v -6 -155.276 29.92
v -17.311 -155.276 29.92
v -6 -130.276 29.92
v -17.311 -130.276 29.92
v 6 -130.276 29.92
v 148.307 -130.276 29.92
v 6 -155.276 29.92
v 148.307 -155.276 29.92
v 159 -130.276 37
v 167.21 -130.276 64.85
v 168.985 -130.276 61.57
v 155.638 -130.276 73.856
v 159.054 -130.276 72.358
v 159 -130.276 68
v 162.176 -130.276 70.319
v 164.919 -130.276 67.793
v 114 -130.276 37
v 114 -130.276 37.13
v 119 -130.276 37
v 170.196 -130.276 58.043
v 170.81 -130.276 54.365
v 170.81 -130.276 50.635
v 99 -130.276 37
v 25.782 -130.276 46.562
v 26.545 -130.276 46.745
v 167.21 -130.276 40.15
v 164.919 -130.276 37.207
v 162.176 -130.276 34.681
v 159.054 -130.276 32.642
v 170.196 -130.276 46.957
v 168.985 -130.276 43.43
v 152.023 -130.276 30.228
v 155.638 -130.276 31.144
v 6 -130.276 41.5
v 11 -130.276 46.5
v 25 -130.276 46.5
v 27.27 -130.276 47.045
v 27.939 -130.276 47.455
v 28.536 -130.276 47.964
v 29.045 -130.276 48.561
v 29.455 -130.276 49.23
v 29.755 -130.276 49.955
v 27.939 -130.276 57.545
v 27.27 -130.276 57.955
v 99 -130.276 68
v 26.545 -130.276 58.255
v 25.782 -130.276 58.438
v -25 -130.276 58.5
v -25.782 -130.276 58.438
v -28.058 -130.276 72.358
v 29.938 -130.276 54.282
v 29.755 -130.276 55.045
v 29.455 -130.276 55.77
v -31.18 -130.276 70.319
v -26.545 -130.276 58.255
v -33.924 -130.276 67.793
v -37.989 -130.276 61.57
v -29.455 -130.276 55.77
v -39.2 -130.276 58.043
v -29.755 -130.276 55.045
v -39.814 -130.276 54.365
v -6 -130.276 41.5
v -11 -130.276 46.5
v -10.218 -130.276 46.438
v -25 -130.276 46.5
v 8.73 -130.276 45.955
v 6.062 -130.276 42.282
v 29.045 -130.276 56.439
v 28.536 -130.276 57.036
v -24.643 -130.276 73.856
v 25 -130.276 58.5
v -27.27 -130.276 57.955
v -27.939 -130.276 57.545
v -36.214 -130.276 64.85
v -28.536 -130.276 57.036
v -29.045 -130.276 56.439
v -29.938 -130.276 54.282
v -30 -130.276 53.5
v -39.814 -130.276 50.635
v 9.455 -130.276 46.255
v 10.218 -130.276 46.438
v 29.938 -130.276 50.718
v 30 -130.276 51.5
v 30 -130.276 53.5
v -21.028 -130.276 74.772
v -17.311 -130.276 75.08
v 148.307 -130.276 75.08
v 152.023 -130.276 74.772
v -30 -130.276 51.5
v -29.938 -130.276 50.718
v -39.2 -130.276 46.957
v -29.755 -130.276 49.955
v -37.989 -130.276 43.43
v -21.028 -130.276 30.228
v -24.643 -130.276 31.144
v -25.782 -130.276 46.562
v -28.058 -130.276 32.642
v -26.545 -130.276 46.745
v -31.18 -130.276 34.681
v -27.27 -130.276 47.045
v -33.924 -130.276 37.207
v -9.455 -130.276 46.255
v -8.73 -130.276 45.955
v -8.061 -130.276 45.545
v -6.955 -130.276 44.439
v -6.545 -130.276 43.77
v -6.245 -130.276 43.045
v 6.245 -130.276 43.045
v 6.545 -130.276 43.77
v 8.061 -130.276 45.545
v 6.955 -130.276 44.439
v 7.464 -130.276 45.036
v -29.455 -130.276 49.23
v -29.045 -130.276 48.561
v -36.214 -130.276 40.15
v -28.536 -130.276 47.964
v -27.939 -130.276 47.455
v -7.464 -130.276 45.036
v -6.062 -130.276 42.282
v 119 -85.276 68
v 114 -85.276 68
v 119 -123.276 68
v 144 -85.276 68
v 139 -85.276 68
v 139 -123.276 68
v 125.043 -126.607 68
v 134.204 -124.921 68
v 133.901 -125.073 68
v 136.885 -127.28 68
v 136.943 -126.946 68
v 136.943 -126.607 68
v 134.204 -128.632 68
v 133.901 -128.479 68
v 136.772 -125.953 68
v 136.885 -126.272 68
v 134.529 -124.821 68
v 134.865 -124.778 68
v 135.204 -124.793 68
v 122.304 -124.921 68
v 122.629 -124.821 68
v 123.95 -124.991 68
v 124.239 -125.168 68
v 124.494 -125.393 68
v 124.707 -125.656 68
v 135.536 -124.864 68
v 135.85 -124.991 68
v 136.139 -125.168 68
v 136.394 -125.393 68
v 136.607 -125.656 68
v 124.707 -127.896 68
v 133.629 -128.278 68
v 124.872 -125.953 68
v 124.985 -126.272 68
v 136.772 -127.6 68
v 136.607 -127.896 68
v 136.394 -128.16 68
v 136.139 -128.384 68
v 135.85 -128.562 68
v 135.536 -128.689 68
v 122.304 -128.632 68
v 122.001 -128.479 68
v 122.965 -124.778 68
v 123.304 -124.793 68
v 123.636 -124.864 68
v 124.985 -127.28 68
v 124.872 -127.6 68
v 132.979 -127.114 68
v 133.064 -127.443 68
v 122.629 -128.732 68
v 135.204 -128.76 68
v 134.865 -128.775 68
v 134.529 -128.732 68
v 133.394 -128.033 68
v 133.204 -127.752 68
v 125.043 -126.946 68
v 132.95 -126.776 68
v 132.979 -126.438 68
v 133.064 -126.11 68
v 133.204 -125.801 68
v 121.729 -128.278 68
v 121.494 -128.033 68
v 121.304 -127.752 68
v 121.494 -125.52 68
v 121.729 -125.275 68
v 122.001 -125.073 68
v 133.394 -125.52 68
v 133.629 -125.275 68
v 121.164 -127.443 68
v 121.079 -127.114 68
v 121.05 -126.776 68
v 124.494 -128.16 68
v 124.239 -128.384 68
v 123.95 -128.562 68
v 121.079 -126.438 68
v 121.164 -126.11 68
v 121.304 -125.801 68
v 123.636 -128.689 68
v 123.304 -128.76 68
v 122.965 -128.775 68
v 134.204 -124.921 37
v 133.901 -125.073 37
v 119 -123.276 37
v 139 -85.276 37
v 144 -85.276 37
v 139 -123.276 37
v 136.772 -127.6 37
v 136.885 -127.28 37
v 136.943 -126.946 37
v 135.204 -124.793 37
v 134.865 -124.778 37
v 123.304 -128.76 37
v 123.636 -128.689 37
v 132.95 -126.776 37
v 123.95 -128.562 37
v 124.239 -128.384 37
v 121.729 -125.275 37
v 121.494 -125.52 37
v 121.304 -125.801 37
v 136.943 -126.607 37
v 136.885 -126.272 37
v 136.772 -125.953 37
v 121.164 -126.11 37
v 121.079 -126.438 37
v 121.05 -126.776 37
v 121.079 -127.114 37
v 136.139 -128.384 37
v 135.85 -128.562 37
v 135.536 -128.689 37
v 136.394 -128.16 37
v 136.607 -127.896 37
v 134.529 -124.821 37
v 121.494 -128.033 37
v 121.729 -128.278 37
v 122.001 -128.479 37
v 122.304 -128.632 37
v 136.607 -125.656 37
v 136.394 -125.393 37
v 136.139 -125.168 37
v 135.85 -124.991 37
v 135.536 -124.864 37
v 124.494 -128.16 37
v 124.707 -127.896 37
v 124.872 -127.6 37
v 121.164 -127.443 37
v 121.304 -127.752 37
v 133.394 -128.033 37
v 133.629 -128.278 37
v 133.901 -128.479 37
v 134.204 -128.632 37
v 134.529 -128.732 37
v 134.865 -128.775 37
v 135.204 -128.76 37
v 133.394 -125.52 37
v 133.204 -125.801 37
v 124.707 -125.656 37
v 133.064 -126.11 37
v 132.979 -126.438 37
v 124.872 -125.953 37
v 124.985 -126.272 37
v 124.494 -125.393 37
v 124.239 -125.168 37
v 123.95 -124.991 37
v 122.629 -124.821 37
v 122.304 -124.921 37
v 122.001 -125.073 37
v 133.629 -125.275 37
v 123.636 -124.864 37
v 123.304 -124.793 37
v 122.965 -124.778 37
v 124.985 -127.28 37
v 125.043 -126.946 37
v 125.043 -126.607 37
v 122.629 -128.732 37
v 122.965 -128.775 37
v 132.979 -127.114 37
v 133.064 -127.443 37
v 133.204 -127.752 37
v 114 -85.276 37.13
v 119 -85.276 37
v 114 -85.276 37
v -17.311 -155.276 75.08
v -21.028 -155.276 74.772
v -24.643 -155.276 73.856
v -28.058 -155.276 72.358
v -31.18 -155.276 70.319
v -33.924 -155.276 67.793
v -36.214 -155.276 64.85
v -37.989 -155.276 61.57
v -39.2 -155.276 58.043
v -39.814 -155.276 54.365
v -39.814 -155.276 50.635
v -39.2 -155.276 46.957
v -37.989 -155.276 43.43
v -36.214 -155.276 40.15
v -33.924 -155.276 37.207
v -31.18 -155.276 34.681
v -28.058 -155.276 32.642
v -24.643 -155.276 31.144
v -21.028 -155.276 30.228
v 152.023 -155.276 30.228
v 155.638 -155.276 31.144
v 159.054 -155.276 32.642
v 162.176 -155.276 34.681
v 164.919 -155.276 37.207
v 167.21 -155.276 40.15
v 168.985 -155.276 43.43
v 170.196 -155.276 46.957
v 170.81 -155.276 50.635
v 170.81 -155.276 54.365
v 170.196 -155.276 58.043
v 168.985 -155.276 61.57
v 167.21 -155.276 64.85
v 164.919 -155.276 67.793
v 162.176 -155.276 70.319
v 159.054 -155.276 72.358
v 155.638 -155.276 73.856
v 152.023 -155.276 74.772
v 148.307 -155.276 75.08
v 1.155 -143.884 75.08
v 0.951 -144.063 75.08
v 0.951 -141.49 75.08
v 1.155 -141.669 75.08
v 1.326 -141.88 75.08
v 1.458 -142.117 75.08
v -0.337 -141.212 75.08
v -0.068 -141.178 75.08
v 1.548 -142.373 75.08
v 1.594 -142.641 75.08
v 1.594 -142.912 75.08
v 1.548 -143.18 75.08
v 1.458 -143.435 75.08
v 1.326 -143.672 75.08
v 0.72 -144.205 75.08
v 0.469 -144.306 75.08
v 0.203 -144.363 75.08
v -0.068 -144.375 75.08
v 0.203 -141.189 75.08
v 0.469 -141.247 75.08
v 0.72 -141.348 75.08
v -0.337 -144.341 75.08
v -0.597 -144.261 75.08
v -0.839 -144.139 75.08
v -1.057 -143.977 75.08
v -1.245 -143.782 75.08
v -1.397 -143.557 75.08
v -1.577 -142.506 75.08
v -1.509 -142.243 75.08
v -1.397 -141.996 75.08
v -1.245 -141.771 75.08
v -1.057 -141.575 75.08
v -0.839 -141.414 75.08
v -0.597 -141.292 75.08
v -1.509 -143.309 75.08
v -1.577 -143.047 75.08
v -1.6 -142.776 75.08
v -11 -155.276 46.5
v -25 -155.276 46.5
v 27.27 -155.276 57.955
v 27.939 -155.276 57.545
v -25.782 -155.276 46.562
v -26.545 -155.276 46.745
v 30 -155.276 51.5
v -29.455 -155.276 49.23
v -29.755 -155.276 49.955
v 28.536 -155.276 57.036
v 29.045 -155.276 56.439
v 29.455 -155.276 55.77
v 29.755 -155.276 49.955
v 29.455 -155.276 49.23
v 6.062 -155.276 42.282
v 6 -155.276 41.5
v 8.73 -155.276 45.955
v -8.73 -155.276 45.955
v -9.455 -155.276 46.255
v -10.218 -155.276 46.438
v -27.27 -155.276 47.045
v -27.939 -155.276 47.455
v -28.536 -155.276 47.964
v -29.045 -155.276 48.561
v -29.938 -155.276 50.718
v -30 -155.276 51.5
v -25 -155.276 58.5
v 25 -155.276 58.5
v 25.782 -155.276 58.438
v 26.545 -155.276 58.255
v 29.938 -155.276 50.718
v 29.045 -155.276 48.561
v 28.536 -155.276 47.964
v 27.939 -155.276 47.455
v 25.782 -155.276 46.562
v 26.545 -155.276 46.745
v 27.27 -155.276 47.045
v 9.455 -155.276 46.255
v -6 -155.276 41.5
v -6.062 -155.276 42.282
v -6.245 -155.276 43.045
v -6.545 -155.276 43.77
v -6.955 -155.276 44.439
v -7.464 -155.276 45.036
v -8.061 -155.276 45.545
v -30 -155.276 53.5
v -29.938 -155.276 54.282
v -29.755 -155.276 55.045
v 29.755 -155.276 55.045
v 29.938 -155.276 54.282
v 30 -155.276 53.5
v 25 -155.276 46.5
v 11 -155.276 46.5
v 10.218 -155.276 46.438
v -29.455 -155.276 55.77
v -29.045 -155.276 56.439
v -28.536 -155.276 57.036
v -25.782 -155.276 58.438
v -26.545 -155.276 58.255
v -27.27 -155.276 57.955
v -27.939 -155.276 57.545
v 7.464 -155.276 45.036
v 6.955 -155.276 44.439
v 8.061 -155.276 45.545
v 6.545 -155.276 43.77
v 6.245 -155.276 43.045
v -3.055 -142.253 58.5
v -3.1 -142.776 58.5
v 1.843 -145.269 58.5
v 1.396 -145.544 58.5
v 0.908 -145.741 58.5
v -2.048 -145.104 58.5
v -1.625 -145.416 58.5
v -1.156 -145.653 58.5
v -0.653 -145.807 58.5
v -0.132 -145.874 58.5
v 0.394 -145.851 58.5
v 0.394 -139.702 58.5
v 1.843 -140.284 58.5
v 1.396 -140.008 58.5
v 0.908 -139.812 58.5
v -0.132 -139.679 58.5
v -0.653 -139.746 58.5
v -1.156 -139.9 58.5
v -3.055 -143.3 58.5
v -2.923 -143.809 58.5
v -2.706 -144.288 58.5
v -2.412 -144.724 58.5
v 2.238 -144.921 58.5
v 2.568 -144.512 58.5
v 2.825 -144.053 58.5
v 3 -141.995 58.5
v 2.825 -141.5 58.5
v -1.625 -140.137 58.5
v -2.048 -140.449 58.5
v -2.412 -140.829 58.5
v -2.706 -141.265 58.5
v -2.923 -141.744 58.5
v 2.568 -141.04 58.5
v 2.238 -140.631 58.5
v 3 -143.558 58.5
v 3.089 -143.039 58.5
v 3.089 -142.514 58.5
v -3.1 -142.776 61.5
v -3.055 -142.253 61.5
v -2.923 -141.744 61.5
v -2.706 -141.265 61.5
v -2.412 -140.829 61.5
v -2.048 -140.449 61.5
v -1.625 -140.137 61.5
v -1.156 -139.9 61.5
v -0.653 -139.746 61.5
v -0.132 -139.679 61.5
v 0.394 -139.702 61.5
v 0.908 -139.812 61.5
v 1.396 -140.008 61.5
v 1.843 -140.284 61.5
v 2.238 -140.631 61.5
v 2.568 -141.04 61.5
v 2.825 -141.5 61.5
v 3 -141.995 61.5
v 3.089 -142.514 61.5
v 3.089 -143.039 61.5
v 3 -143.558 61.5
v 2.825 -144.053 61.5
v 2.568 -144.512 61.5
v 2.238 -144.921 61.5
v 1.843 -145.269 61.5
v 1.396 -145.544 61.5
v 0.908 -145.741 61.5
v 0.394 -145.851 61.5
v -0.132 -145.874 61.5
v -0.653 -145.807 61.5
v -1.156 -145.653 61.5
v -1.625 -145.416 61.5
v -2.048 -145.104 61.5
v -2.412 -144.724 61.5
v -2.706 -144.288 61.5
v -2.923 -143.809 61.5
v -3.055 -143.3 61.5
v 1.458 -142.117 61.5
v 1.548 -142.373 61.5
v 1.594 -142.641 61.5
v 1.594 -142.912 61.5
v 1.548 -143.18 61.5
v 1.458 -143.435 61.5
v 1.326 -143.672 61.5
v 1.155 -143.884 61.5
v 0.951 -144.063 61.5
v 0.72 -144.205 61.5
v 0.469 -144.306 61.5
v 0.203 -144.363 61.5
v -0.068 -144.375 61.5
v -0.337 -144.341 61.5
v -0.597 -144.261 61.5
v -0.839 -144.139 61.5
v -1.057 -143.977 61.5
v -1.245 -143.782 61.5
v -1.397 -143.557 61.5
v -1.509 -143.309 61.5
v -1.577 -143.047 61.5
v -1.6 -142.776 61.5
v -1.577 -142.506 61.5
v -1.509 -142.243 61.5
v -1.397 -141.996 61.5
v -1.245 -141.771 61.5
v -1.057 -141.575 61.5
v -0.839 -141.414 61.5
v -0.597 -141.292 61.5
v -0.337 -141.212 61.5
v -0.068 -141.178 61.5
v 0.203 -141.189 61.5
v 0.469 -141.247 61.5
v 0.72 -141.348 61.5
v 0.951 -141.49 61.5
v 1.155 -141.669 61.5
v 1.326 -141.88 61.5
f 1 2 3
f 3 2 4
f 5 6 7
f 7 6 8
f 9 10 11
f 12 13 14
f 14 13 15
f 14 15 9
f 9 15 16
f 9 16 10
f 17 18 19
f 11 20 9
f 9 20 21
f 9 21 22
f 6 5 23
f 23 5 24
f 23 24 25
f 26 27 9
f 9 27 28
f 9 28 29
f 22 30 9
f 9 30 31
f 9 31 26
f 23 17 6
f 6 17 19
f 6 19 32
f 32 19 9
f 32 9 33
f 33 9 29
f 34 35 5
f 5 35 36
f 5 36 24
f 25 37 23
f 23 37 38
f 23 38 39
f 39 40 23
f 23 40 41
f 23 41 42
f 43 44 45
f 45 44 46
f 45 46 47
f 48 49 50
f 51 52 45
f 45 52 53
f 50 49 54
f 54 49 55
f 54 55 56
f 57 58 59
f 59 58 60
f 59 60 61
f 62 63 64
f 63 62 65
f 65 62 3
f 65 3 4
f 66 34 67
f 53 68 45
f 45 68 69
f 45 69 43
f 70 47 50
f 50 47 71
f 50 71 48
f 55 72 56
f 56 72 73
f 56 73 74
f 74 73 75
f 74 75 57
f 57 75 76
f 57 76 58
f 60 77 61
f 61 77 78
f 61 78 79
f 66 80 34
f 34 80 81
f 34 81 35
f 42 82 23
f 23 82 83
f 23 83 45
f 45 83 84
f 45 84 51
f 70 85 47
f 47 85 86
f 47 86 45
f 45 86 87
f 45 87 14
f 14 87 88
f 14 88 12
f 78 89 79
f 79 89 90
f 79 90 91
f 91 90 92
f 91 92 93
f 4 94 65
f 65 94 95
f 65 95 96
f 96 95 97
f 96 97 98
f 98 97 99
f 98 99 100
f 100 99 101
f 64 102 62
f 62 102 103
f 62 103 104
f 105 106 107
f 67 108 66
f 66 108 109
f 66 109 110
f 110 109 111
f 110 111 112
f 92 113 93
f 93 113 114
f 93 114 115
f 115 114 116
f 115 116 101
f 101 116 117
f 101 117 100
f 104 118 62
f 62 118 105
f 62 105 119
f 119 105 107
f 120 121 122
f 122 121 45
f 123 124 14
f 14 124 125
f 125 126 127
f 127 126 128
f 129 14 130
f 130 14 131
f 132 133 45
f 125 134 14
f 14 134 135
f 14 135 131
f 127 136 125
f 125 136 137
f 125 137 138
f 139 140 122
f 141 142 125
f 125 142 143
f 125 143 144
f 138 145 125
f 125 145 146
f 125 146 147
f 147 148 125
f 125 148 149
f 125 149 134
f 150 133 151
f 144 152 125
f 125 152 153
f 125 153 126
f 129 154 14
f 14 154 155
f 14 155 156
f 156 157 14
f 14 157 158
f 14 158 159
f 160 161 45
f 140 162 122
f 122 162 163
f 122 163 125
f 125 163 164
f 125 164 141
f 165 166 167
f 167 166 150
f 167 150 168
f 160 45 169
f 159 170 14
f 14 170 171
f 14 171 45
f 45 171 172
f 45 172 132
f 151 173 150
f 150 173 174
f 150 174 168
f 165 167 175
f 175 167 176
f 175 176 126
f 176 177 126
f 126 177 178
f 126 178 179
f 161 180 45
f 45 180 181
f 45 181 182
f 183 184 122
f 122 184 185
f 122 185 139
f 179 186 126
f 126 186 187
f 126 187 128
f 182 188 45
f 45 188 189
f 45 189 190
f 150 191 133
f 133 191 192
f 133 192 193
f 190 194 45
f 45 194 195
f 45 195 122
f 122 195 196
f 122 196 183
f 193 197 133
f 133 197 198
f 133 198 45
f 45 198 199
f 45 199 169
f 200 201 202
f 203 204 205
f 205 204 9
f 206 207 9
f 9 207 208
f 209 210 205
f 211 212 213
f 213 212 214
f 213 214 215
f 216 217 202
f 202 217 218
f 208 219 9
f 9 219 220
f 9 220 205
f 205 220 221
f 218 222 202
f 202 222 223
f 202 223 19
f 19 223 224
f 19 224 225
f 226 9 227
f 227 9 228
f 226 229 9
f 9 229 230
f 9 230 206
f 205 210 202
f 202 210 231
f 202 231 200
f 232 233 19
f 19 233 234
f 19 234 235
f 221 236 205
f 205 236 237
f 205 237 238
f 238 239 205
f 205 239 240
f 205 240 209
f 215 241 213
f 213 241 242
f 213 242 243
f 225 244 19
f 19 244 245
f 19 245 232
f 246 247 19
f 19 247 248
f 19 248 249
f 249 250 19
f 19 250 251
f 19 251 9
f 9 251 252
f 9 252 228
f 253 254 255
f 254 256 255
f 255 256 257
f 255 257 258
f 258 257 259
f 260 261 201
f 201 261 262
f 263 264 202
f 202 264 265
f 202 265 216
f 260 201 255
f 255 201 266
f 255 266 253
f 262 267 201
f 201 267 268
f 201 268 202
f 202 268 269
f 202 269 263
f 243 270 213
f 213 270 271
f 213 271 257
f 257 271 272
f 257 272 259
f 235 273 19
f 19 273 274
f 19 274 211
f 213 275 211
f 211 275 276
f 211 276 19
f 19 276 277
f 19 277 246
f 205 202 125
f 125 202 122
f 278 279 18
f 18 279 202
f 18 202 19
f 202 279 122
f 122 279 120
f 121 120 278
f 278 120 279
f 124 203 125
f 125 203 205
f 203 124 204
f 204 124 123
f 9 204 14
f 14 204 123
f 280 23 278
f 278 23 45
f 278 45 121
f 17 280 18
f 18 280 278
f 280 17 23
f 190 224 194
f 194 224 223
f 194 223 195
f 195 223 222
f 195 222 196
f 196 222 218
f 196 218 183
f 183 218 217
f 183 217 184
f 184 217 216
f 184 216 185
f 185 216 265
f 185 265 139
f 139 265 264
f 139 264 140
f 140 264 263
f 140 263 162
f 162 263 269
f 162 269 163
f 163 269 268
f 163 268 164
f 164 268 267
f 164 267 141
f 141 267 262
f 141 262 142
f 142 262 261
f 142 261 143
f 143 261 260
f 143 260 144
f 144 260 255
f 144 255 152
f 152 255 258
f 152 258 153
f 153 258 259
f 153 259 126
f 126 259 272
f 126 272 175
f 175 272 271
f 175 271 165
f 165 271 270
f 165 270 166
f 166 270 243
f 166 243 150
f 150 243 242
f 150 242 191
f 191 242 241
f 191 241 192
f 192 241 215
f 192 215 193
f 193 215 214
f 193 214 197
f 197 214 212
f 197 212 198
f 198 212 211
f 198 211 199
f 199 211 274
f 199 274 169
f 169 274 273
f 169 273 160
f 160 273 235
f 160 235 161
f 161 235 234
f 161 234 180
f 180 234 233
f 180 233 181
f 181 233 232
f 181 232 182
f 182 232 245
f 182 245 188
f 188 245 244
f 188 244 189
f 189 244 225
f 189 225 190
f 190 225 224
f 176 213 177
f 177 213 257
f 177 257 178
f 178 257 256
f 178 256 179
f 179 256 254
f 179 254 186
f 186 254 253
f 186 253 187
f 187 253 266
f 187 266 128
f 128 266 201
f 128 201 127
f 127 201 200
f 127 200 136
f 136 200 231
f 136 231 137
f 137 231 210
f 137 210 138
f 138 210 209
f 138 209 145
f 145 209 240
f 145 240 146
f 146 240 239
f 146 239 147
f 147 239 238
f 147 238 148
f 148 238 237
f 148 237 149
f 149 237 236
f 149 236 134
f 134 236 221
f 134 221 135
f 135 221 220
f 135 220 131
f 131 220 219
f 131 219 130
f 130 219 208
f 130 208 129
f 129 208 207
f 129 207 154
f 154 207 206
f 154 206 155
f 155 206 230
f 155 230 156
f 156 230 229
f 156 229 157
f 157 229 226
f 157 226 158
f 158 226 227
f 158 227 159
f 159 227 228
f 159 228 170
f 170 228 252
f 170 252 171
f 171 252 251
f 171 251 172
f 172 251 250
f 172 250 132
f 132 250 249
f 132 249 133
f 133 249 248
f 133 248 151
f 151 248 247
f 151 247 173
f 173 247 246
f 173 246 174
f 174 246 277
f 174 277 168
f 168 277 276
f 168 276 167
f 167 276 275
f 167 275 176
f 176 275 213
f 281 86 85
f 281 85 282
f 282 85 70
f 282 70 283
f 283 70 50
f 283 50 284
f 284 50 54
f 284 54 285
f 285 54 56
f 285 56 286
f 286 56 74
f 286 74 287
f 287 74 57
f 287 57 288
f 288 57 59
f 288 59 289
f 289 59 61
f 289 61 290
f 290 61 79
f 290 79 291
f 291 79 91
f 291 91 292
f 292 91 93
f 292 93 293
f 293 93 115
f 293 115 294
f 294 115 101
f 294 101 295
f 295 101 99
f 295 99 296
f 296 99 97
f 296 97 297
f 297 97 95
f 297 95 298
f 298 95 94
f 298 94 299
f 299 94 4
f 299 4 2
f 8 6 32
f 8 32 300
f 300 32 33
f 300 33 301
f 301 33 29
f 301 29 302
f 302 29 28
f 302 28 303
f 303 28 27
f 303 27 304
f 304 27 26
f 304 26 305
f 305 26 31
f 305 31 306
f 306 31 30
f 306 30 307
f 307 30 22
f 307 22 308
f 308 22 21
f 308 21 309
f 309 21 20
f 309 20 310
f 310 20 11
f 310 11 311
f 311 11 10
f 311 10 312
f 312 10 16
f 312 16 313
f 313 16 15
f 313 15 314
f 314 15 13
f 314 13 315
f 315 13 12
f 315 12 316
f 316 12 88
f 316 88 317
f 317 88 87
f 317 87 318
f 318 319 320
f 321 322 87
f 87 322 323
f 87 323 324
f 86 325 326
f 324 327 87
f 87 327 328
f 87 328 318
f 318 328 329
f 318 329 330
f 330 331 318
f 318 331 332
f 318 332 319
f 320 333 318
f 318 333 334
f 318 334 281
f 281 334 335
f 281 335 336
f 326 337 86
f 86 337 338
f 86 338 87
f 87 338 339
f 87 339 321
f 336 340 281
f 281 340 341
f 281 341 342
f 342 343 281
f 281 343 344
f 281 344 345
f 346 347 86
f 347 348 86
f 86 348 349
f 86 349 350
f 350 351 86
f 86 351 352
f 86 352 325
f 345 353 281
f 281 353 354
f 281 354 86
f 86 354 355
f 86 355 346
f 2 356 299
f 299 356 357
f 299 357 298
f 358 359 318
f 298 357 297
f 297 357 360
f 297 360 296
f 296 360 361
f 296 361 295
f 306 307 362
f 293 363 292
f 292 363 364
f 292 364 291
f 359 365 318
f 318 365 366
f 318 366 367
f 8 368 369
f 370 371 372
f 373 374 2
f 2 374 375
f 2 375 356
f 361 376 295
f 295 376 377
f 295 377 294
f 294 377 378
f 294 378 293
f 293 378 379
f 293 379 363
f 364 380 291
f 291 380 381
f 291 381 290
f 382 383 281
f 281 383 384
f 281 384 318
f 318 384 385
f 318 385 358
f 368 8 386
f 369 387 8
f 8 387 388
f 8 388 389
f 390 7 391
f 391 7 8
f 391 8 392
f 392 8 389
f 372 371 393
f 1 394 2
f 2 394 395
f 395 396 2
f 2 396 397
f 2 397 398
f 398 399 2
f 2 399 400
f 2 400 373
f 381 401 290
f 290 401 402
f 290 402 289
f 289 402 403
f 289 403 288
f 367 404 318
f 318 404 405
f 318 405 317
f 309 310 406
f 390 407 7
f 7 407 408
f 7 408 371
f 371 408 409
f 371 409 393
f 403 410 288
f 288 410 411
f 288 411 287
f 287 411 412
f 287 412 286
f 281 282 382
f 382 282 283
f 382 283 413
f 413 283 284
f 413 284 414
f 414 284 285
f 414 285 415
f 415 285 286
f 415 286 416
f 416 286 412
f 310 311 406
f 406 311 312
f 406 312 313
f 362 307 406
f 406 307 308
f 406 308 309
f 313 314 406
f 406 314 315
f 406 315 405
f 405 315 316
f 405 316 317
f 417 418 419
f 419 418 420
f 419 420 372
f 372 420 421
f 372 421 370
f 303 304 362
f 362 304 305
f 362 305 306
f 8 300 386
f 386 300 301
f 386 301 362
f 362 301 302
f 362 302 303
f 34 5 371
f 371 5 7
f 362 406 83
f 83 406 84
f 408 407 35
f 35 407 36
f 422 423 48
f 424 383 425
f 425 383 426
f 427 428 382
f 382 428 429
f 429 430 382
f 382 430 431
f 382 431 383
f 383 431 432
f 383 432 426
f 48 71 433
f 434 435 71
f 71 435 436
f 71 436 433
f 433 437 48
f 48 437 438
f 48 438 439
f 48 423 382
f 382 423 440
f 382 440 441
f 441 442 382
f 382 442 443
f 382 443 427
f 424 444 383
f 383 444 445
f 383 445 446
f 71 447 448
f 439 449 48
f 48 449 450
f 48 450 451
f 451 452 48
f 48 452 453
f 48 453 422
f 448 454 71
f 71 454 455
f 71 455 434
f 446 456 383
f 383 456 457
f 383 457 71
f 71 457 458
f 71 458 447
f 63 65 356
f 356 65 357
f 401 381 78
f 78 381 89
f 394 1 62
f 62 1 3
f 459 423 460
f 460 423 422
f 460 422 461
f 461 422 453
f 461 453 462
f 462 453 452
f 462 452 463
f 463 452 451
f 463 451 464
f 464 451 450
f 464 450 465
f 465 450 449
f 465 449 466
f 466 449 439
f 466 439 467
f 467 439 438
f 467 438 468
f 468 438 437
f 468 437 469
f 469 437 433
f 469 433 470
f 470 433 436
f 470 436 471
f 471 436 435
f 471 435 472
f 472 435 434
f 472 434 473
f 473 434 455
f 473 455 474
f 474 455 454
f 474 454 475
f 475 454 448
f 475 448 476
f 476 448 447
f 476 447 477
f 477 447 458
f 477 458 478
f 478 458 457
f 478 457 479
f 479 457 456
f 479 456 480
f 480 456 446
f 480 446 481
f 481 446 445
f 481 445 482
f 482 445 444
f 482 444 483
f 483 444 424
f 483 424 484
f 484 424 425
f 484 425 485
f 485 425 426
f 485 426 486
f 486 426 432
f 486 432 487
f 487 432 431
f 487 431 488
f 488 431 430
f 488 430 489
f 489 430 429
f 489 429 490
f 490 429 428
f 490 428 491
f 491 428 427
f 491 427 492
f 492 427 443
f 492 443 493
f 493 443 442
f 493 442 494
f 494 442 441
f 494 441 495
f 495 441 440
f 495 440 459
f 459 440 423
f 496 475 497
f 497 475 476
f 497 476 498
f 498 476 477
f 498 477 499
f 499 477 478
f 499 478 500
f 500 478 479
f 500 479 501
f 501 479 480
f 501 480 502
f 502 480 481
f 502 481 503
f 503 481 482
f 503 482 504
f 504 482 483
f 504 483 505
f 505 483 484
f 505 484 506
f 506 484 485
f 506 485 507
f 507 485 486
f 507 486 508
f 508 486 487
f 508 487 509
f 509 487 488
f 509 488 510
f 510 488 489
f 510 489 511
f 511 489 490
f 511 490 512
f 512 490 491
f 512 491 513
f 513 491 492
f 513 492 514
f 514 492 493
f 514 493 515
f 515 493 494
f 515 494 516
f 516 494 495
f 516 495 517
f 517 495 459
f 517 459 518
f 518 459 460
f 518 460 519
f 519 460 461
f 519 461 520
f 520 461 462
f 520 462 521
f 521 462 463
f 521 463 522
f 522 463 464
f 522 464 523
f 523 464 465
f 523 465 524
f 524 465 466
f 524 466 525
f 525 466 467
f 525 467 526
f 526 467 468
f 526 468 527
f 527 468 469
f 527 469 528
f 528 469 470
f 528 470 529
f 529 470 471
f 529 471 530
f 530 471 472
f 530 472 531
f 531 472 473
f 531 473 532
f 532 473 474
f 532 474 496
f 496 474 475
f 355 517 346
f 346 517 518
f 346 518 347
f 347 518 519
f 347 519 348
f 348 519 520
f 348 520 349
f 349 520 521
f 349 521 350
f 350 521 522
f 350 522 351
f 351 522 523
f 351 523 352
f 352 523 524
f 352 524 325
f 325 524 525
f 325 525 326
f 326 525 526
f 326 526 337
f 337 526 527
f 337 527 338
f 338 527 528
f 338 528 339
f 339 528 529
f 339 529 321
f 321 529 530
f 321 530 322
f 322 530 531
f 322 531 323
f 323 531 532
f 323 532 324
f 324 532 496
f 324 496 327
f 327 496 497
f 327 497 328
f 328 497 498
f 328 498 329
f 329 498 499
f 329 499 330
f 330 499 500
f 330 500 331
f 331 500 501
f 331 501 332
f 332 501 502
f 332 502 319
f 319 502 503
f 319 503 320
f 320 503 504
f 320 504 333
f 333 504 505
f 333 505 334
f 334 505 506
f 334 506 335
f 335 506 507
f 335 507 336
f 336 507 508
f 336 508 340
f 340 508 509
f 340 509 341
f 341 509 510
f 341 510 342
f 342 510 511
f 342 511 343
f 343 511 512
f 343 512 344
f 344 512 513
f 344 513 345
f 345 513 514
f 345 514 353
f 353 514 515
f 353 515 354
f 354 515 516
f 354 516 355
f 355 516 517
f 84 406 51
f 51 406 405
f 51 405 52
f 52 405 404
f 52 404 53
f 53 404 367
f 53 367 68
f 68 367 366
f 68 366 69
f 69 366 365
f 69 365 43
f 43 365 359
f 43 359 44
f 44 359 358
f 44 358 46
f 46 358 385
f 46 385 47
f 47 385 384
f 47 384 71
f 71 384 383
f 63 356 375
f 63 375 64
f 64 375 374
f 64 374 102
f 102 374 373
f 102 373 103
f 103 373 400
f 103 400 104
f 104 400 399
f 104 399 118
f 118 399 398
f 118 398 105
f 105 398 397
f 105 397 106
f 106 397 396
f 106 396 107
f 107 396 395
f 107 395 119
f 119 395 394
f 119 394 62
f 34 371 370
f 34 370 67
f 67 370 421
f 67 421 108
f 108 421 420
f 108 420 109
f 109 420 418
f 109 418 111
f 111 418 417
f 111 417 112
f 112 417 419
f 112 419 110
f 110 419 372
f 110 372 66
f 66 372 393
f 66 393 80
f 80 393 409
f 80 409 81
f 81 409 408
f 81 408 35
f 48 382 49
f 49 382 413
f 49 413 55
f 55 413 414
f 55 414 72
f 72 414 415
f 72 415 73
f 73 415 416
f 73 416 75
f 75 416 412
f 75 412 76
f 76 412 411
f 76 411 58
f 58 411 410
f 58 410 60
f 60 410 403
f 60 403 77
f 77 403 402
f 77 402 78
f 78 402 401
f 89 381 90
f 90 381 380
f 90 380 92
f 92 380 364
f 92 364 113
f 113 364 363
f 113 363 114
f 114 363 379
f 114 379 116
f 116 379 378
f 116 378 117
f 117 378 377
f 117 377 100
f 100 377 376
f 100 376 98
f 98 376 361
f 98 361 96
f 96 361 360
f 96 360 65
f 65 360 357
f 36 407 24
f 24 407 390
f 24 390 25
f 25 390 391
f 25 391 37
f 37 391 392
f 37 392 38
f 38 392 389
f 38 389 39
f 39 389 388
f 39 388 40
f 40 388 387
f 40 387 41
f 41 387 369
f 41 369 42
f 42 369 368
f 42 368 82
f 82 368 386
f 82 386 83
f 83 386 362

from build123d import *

# Parameters (mm, degrees)
SKETCH_1_R                = 1.985
EXTRUDE_1_DEPTH           = 12
CUT_EXTRUDE_1_DEPTH       = 21
CUT_EXTRUDE_6_DEPTH       = 21
SKETCH_12_R               = 1.985
EXTRUDE_11_DEPTH          = 5
SKETCH_13_R               = 1.985
EXTRUDE_12_DEPTH          = 5
SKETCH_14_W               = 2.04
SKETCH_14_H               = 20
CUT_EXTRUDE_7_DEPTH       = 21
SKETCH_15_W               = 6
SKETCH_15_H               = 6
EXTRUDE_13_DEPTH          = 100
EXTRUDE_14_DEPTH          = 25
EXTRUDE_19_DEPTH          = 7
SKETCH_31_W               = 5
SKETCH_31_H               = 31
EXTRUDE_20_DEPTH          = 45
EXTRUDE_21_DEPTH          = 31
CUT_EXTRUDE_16_DEPTH      = 60
SKETCH_38_W               = 0.2
SKETCH_38_H               = 20
CUT_EXTRUDE_18_DEPTH      = 187
FILLET_2_R                = 10
EXTRUDE_22_DEPTH          = 12
EXTRUDE_23_DEPTH          = 12
SKETCH_46_W               = 12
SKETCH_46_H               = 6
EXTRUDE_24_DEPTH          = 72
SKETCH_45_W               = 12
SKETCH_45_H               = 12
EXTRUDE_26_DEPTH          = 34.5
CUT_EXTRUDE_22_DEPTH      = 56
CUT_EXTRUDE_22_DEPTH_BACK = 183
SKETCH_52_W               = 276.860759989
SKETCH_52_H               = 117.184268482
CUT_EXTRUDE_24_DEPTH      = 26
SKETCH_56_R               = 1.7
CUT_EXTRUDE_26_DEPTH      = 17.579802914
CUT_EXTRUDE_26_DEPTH_BACK = 64.5
EXTRUDE_27_DEPTH          = 12
CUT_EXTRUDE_27_DEPTH      = 12
SKETCH_59_W               = 12
SKETCH_59_H               = 29.920197086
EXTRUDE_29_DEPTH          = 25
SKETCH_60_W               = 24
SKETCH_60_H               = 12
EXTRUDE_30_DEPTH          = 12
EXTRUDE_30_DEPTH_BACK     = 25
CUT_EXTRUDE_29_DEPTH      = 141.276417548
CUT_EXTRUDE_29_DEPTH_BACK = 26
SKETCH_64_R               = 3.1
CUT_EXTRUDE_30_DEPTH      = 3
SKETCH_65_R               = 1.6
CUT_EXTRUDE_32_DEPTH      = 14.579802914
FILLET_3_R                = 5
FILLET_4_R                = 5


with BuildPart() as part:
    # 草圖1 → 填料-伸長1 (new body)
    with BuildSketch(Plane.XY):
        with BuildLine():
            Line((-10, 0), (-10, -30.276417548))
            Line((-10, -30.276417548), (10, -30.276417548))
            Line((10, -30.276417548), (10, 0))
            ThreePointArc((10, 0), (0, 10), (-10, 0))
        make_face()
        Circle(SKETCH_1_R, mode=Mode.SUBTRACT)
    extrude(amount=EXTRUDE_1_DEPTH)

    # 草圖2 → 除料-伸長1 (cut, through all)
    with BuildSketch(Plane(origin=(10, 0, 0), x_dir=(0, 0, -1), z_dir=(1, 0, 0))):
        Polygon((-9, 0), (-6, 0), (-3, 0), (-3, 15.780779257), (-9, 15.780779257), align=None)
        Polygon((-3, 0), (-6, 0), (-9, 0), (-8.60053373, -20), (-3, -20), align=None)
    extrude(amount=-CUT_EXTRUDE_1_DEPTH, mode=Mode.SUBTRACT)

    # 草圖11 → 除料-伸長6 (cut, through all)
    with BuildSketch(Plane(origin=(10, 0, 0), x_dir=(0, 0, -1), z_dir=(1, 0, 0))):
        Polygon((-9, 0), (-9, -20), (-8.60053373, -20), align=None)
    extrude(amount=-CUT_EXTRUDE_6_DEPTH, mode=Mode.SUBTRACT)

    # 草圖12 → 填料-伸長11 (add)
    with BuildSketch(Plane.XY.offset(12)):
        with BuildLine():
            ThreePointArc((10, 0), (0, 10), (-10, 0))
            ThreePointArc((-10, 0), (0, -10), (10, 0))
        make_face()
        Circle(SKETCH_12_R, mode=Mode.SUBTRACT)
        with BuildLine():
            ThreePointArc((10, 0), (0, -10), (-10, 0))
            Line((-10, 0), (-10, -30.276417548))
            Line((-10, -30.276417548), (10, -30.276417548))
            Line((10, -30.276417548), (10, 0))
        make_face()
    extrude(amount=EXTRUDE_11_DEPTH)

    # 草圖13 → 填料-伸長12 (add)
    with BuildSketch(Plane(origin=(0, 0, 0), x_dir=(-1, 0, 0), z_dir=(0, 0, -1))):
        with BuildLine():
            ThreePointArc((10, 0), (0, 10), (-10, 0))
            ThreePointArc((-10, 0), (0, -10), (10, 0))
        make_face()
        Circle(SKETCH_13_R, mode=Mode.SUBTRACT)
        with BuildLine():
            ThreePointArc((10, 0), (0, -10), (-10, 0))
            Line((-10, 0), (-10, -30.276417548))
            Line((-10, -30.276417548), (10, -30.276417548))
            Line((10, -30.276417548), (10, 0))
        make_face()
    extrude(amount=EXTRUDE_12_DEPTH)

    # 草圖14 → 除料-伸長7 (cut, through all)
    with BuildSketch(Plane.ZY.offset(10)):
        Polygon((3, 0), (3, -20), (9, -20), (9, 0), (11.04, 0), (11.04, 10), (3, 10), (0.96, 10), (0.96, 0), align=None)
        with Locations((1.98, -10)):
            Rectangle(SKETCH_14_W, SKETCH_14_H)
        with Locations((10.02, -10)):
            Rectangle(SKETCH_14_W, SKETCH_14_H)
    extrude(amount=-CUT_EXTRUDE_7_DEPTH, mode=Mode.SUBTRACT)

    # 草圖15 → 填料-伸長13 (add)
    with BuildSketch(Plane.XZ.offset(30.276417548)):
        with Locations((3, 9)):
            Rectangle(SKETCH_15_W, SKETCH_15_H)
        with Locations((-3, 9)):
            Rectangle(SKETCH_15_W, SKETCH_15_H)
        with Locations((3, 3)):
            Rectangle(SKETCH_15_W, SKETCH_15_H)
        with Locations((-3, 3)):
            Rectangle(SKETCH_15_W, SKETCH_15_H)
    extrude(amount=EXTRUDE_13_DEPTH)

    # 草圖16 → 填料-伸長14 (add)
    with BuildSketch(Plane.XZ.offset(130.276417548)):
        Polygon((176, -54), (176, 6), (176, 96), (-61, 96), (-61, 6), (-61, -54), align=None)
    extrude(amount=EXTRUDE_14_DEPTH)

    # 草圖30 → 填料-伸長19 (add)
    with BuildSketch(Plane(origin=(0, -130.276417548, 0), x_dir=(1, 0, 0), z_dir=(0, 1, 0))):
        Polygon((119, -68), (139, -68), (139, -37), (129, -37), (119, -37), align=None)
    extrude(amount=EXTRUDE_19_DEPTH)

    # 草圖31 → 填料-伸長20 (add)
    with BuildSketch(Plane(origin=(0, -130.276417548, 0), x_dir=(1, 0, 0), z_dir=(0, 1, 0))):
        Polygon((119, -68), (114, -68), (114, -37.129725066), (119, -37), align=None)
        with Locations((141.5, -52.5)):
            Rectangle(SKETCH_31_W, SKETCH_31_H)
    extrude(amount=EXTRUDE_20_DEPTH)

    # 草圖33 → 填料-伸長21 (add)
    with BuildSketch(Plane.XY.offset(68)):
        Polygon((159, -130.276417548), (144, -130.276417548), (144, -85.276417548), align=None)
        Polygon((114, -85.276417548), (99, -130.276417548), (114, -130.276417548), align=None)
    extrude(amount=-EXTRUDE_21_DEPTH)

    # 草圖35 → 除料-伸長16 (cut, through all)
    with BuildSketch(Plane(origin=(0, 0, 37), x_dir=(-1, 0, 0), z_dir=(0, 0, -1))):
        with BuildLine():
            ThreePointArc((-132.95, -126.776417548), (-134.95, -124.776417548), (-136.95, -126.776417548))
            Line((-136.95, -126.776417548), (-132.95, -126.776417548))
        make_face()
        with BuildLine():
            Line((-132.95, -126.776417548), (-136.95, -126.776417548))
            ThreePointArc((-136.95, -126.776417548), (-134.95, -128.776417548), (-132.95, -126.776417548))
        make_face()
        with BuildLine():
            ThreePointArc((-121.05, -126.776417548), (-123.05, -124.776417548), (-125.05, -126.776417548))
            Line((-125.05, -126.776417548), (-121.05, -126.776417548))
        make_face()
        with BuildLine():
            Line((-121.05, -126.776417548), (-125.05, -126.776417548))
            ThreePointArc((-125.05, -126.776417548), (-123.05, -128.776417548), (-121.05, -126.776417548))
        make_face()
    extrude(amount=-CUT_EXTRUDE_16_DEPTH, mode=Mode.SUBTRACT)

    # 草圖38 → 除料-伸長18 (cut, through all)
    with BuildSketch(Plane.ZY.offset(10)):
        Polygon((11.04, 10), (0.96, 10), (0.76, 10), (0.76, 0), (0.96, 0), (0.96, -20), (11.04, -20), (11.04, 0), (11.24, 0), (11.24, 10), align=None)
        with Locations((0.86, -10)):
            Rectangle(SKETCH_38_W, SKETCH_38_H)
        with Locations((11.14, -10)):
            Rectangle(SKETCH_38_W, SKETCH_38_H)
    extrude(amount=-CUT_EXTRUDE_18_DEPTH, mode=Mode.SUBTRACT)

    # 圓角2
    fillet_2_edges = [part.edges().sort_by_distance(p)[0] for p in [
        (-61, -142.776417548, 96),
        (-61, -142.776417548, -54),
        (176, -142.776417548, -54),
        (176, -142.776417548, 96),
    ]]
    fillet(fillet_2_edges, radius=FILLET_2_R)

    # 草圖39 → 填料-伸長22 (add)
    with BuildSketch(Plane(origin=(0, 0, 0), x_dir=(-1, 0, 0), z_dir=(0, 0, -1))):
        Polygon((-6, -80.276417548), (-16, -130.276417548), (-6, -130.276417548), align=None)
        Polygon((6, -80.276417548), (16, -130.276417548), (6, -130.276417548), align=None)
    extrude(amount=-EXTRUDE_22_DEPTH)

    # 草圖40 → 填料-伸長23 (add)
    with BuildSketch(Plane(origin=(6, 0, 0), x_dir=(0, 0, -1), z_dir=(1, 0, 0))):
        Polygon((-12, -80.276417548), (-22, -130.276417548), (-12, -130.276417548), align=None)
        Polygon((0, -80.276417548), (11.303196885, -130.276417548), (0, -130.276417548), align=None)
    extrude(amount=-EXTRUDE_23_DEPTH)

    # 草圖46 → 填料-伸長24 (add)
    with BuildSketch(Plane(origin=(0, -130.276417548, 0), x_dir=(1, 0, 0), z_dir=(0, 1, 0))):
        with Locations((0, -55.5)):
            Rectangle(SKETCH_46_W, SKETCH_46_H)
        with Locations((0, -49.5)):
            Rectangle(SKETCH_46_W, SKETCH_46_H)
    extrude(amount=EXTRUDE_24_DEPTH)

    # 草圖45 → 填料-伸長26 (add)
    with BuildSketch(Plane.XY.offset(12)):
        with Locations((0, -64.276417548)):
            Rectangle(SKETCH_45_W, SKETCH_45_H)
    extrude(amount=EXTRUDE_26_DEPTH)

    # 草圖50 → 除料-伸長22 (cut, two sides)
    with BuildSketch(Plane.ZY.offset(6)) as cut_extrude_22_sk:
        Polygon((12, -70.276417548), (0, -70.276417548), (-67.39172142, -119.054967007), (-58.508131327, -164.361276479), (22, -164.361276479), (22, -130.276417548), (21.222089752, -86.407773417), align=None)
    extrude(amount=CUT_EXTRUDE_22_DEPTH, mode=Mode.SUBTRACT)
    extrude(cut_extrude_22_sk.sketch, amount=-CUT_EXTRUDE_22_DEPTH_BACK, mode=Mode.SUBTRACT)

    # 草圖52 → 除料-伸長24 (cut, through all)
    with BuildSketch(Plane(origin=(0, -130.276417548, 0), x_dir=(1, 0, 0), z_dir=(0, 1, 0))):
        with Locations((58.121400767, -52.5)):
            Rectangle(SKETCH_52_W, SKETCH_52_H)
        with BuildLine():
            Line((-17.31105843, -29.920197086), (148.30684395, -29.920197086))
            ThreePointArc((148.30684395, -29.920197086), (170.886646864, -52.5), (148.30684395, -75.079802914))
            Line((148.30684395, -75.079802914), (-17.31105843, -75.079802914))
            ThreePointArc((-17.31105843, -75.079802914), (-39.890861345, -52.5), (-17.31105843, -29.920197086))
        make_face(mode=Mode.SUBTRACT)
    extrude(amount=-CUT_EXTRUDE_24_DEPTH, mode=Mode.SUBTRACT)

    # 草圖56 → 除料-伸長26 (cut, two sides)
    with BuildSketch(Plane.XY.offset(58.5)) as cut_extrude_26_sk:
        with Locations((0, -64.276417548)):
            Circle(SKETCH_56_R)
    extrude(amount=CUT_EXTRUDE_26_DEPTH, mode=Mode.SUBTRACT)
    extrude(cut_extrude_26_sk.sketch, amount=-CUT_EXTRUDE_26_DEPTH_BACK, mode=Mode.SUBTRACT)

    # 草圖57 → 填料-伸長27 (add)
    with BuildSketch(Plane.ZY.offset(6)):
        Polygon((12, -70.276417548), (0, -70.276417548), (0, -130.276417548), (46.5, -130.276417548), (46.5, -118.276417548), (45.651807849, -118.276417548), (12, -118.276417548), align=None)
    extrude(amount=-EXTRUDE_27_DEPTH)

    # 草圖58 → 除料-伸長27 (cut)
    with BuildSketch(Plane.ZY.offset(6)):
        Polygon((12, -50.353469845), (12, -118.276417548), (97.717444729, -118.276417548), (103.225359423, -26.791834768), align=None)
    extrude(amount=-CUT_EXTRUDE_27_DEPTH, mode=Mode.SUBTRACT)

    # 草圖59 → 填料-伸長29 (add)
    with BuildSketch(Plane.XZ.offset(130.276417548)):
        with Locations((0, 14.960098543)):
            Rectangle(SKETCH_59_W, SKETCH_59_H)
    extrude(amount=EXTRUDE_29_DEPTH)

    # 草圖60 → 填料-伸長30 (add, two sides)
    with BuildSketch(Plane(origin=(0, -130.276417548, 0), x_dir=(1, 0, 0), z_dir=(0, 1, 0))) as extrude_30_sk:
        with Locations((18, -52.5)):
            Rectangle(SKETCH_60_W, SKETCH_60_H)
        with Locations((-18, -52.5)):
            Rectangle(SKETCH_60_W, SKETCH_60_H)
    extrude(amount=EXTRUDE_30_DEPTH)
    extrude(extrude_30_sk.sketch, amount=-EXTRUDE_30_DEPTH_BACK)

    # 草圖61 → 除料-伸長29 (cut, two sides)
    with BuildSketch(Plane(origin=(0, -130.276417548, 0), x_dir=(1, 0, 0), z_dir=(0, 1, 0))) as cut_extrude_29_sk:
        Polygon((-6, -46.5), (-30, -46.5), (-30, -58.5), (30, -58.5), (30, -46.5), (6, -46.5), (6, -25.627647678), (24.570908719, -19.281918297), (2.903681873, 31.931526974), (-27.080258307, 24.052535394), (-16.735277834, -15.315862515), (-15.070735332, -21.650371482), (-6, -26.781810366), align=None)
    extrude(amount=CUT_EXTRUDE_29_DEPTH, mode=Mode.SUBTRACT)
    extrude(cut_extrude_29_sk.sketch, amount=-CUT_EXTRUDE_29_DEPTH_BACK, mode=Mode.SUBTRACT)

    # 草圖64 → 除料-伸長30 (cut)
    with BuildSketch(Plane(origin=(0, 0, 58.5), x_dir=(-1, 0, 0), z_dir=(0, 0, -1))):
        with Locations((0, -142.776417548)):
            Circle(SKETCH_64_R)
    extrude(amount=-CUT_EXTRUDE_30_DEPTH, mode=Mode.SUBTRACT)

    # 草圖65 → 除料-伸長32 (cut, through all)
    with BuildSketch(Plane(origin=(0, 0, 61.5), x_dir=(-1, 0, 0), z_dir=(0, 0, -1))):
        with Locations((0, -142.776417548)):
            Circle(SKETCH_65_R)
    extrude(amount=-CUT_EXTRUDE_32_DEPTH, mode=Mode.SUBTRACT)

    # 圓角3
    fillet_3_edges = [part.edges().sort_by_distance(p)[0] for p in [
        (30, -142.776417548, 58.5),
    ]]
    fillet(fillet_3_edges, radius=FILLET_3_R)

    # 圓角4
    fillet_4_edges = [part.edges().sort_by_distance(p)[0] for p in [
        (30, -142.776417548, 46.5),
        (6, -142.776417548, 46.5),
        (-30, -142.776417548, 46.5),
        (-30, -142.776417548, 58.5),
        (-6, -142.776417548, 46.5),
    ]]
    fillet(fillet_4_edges, radius=FILLET_4_R)


solid = part.part
